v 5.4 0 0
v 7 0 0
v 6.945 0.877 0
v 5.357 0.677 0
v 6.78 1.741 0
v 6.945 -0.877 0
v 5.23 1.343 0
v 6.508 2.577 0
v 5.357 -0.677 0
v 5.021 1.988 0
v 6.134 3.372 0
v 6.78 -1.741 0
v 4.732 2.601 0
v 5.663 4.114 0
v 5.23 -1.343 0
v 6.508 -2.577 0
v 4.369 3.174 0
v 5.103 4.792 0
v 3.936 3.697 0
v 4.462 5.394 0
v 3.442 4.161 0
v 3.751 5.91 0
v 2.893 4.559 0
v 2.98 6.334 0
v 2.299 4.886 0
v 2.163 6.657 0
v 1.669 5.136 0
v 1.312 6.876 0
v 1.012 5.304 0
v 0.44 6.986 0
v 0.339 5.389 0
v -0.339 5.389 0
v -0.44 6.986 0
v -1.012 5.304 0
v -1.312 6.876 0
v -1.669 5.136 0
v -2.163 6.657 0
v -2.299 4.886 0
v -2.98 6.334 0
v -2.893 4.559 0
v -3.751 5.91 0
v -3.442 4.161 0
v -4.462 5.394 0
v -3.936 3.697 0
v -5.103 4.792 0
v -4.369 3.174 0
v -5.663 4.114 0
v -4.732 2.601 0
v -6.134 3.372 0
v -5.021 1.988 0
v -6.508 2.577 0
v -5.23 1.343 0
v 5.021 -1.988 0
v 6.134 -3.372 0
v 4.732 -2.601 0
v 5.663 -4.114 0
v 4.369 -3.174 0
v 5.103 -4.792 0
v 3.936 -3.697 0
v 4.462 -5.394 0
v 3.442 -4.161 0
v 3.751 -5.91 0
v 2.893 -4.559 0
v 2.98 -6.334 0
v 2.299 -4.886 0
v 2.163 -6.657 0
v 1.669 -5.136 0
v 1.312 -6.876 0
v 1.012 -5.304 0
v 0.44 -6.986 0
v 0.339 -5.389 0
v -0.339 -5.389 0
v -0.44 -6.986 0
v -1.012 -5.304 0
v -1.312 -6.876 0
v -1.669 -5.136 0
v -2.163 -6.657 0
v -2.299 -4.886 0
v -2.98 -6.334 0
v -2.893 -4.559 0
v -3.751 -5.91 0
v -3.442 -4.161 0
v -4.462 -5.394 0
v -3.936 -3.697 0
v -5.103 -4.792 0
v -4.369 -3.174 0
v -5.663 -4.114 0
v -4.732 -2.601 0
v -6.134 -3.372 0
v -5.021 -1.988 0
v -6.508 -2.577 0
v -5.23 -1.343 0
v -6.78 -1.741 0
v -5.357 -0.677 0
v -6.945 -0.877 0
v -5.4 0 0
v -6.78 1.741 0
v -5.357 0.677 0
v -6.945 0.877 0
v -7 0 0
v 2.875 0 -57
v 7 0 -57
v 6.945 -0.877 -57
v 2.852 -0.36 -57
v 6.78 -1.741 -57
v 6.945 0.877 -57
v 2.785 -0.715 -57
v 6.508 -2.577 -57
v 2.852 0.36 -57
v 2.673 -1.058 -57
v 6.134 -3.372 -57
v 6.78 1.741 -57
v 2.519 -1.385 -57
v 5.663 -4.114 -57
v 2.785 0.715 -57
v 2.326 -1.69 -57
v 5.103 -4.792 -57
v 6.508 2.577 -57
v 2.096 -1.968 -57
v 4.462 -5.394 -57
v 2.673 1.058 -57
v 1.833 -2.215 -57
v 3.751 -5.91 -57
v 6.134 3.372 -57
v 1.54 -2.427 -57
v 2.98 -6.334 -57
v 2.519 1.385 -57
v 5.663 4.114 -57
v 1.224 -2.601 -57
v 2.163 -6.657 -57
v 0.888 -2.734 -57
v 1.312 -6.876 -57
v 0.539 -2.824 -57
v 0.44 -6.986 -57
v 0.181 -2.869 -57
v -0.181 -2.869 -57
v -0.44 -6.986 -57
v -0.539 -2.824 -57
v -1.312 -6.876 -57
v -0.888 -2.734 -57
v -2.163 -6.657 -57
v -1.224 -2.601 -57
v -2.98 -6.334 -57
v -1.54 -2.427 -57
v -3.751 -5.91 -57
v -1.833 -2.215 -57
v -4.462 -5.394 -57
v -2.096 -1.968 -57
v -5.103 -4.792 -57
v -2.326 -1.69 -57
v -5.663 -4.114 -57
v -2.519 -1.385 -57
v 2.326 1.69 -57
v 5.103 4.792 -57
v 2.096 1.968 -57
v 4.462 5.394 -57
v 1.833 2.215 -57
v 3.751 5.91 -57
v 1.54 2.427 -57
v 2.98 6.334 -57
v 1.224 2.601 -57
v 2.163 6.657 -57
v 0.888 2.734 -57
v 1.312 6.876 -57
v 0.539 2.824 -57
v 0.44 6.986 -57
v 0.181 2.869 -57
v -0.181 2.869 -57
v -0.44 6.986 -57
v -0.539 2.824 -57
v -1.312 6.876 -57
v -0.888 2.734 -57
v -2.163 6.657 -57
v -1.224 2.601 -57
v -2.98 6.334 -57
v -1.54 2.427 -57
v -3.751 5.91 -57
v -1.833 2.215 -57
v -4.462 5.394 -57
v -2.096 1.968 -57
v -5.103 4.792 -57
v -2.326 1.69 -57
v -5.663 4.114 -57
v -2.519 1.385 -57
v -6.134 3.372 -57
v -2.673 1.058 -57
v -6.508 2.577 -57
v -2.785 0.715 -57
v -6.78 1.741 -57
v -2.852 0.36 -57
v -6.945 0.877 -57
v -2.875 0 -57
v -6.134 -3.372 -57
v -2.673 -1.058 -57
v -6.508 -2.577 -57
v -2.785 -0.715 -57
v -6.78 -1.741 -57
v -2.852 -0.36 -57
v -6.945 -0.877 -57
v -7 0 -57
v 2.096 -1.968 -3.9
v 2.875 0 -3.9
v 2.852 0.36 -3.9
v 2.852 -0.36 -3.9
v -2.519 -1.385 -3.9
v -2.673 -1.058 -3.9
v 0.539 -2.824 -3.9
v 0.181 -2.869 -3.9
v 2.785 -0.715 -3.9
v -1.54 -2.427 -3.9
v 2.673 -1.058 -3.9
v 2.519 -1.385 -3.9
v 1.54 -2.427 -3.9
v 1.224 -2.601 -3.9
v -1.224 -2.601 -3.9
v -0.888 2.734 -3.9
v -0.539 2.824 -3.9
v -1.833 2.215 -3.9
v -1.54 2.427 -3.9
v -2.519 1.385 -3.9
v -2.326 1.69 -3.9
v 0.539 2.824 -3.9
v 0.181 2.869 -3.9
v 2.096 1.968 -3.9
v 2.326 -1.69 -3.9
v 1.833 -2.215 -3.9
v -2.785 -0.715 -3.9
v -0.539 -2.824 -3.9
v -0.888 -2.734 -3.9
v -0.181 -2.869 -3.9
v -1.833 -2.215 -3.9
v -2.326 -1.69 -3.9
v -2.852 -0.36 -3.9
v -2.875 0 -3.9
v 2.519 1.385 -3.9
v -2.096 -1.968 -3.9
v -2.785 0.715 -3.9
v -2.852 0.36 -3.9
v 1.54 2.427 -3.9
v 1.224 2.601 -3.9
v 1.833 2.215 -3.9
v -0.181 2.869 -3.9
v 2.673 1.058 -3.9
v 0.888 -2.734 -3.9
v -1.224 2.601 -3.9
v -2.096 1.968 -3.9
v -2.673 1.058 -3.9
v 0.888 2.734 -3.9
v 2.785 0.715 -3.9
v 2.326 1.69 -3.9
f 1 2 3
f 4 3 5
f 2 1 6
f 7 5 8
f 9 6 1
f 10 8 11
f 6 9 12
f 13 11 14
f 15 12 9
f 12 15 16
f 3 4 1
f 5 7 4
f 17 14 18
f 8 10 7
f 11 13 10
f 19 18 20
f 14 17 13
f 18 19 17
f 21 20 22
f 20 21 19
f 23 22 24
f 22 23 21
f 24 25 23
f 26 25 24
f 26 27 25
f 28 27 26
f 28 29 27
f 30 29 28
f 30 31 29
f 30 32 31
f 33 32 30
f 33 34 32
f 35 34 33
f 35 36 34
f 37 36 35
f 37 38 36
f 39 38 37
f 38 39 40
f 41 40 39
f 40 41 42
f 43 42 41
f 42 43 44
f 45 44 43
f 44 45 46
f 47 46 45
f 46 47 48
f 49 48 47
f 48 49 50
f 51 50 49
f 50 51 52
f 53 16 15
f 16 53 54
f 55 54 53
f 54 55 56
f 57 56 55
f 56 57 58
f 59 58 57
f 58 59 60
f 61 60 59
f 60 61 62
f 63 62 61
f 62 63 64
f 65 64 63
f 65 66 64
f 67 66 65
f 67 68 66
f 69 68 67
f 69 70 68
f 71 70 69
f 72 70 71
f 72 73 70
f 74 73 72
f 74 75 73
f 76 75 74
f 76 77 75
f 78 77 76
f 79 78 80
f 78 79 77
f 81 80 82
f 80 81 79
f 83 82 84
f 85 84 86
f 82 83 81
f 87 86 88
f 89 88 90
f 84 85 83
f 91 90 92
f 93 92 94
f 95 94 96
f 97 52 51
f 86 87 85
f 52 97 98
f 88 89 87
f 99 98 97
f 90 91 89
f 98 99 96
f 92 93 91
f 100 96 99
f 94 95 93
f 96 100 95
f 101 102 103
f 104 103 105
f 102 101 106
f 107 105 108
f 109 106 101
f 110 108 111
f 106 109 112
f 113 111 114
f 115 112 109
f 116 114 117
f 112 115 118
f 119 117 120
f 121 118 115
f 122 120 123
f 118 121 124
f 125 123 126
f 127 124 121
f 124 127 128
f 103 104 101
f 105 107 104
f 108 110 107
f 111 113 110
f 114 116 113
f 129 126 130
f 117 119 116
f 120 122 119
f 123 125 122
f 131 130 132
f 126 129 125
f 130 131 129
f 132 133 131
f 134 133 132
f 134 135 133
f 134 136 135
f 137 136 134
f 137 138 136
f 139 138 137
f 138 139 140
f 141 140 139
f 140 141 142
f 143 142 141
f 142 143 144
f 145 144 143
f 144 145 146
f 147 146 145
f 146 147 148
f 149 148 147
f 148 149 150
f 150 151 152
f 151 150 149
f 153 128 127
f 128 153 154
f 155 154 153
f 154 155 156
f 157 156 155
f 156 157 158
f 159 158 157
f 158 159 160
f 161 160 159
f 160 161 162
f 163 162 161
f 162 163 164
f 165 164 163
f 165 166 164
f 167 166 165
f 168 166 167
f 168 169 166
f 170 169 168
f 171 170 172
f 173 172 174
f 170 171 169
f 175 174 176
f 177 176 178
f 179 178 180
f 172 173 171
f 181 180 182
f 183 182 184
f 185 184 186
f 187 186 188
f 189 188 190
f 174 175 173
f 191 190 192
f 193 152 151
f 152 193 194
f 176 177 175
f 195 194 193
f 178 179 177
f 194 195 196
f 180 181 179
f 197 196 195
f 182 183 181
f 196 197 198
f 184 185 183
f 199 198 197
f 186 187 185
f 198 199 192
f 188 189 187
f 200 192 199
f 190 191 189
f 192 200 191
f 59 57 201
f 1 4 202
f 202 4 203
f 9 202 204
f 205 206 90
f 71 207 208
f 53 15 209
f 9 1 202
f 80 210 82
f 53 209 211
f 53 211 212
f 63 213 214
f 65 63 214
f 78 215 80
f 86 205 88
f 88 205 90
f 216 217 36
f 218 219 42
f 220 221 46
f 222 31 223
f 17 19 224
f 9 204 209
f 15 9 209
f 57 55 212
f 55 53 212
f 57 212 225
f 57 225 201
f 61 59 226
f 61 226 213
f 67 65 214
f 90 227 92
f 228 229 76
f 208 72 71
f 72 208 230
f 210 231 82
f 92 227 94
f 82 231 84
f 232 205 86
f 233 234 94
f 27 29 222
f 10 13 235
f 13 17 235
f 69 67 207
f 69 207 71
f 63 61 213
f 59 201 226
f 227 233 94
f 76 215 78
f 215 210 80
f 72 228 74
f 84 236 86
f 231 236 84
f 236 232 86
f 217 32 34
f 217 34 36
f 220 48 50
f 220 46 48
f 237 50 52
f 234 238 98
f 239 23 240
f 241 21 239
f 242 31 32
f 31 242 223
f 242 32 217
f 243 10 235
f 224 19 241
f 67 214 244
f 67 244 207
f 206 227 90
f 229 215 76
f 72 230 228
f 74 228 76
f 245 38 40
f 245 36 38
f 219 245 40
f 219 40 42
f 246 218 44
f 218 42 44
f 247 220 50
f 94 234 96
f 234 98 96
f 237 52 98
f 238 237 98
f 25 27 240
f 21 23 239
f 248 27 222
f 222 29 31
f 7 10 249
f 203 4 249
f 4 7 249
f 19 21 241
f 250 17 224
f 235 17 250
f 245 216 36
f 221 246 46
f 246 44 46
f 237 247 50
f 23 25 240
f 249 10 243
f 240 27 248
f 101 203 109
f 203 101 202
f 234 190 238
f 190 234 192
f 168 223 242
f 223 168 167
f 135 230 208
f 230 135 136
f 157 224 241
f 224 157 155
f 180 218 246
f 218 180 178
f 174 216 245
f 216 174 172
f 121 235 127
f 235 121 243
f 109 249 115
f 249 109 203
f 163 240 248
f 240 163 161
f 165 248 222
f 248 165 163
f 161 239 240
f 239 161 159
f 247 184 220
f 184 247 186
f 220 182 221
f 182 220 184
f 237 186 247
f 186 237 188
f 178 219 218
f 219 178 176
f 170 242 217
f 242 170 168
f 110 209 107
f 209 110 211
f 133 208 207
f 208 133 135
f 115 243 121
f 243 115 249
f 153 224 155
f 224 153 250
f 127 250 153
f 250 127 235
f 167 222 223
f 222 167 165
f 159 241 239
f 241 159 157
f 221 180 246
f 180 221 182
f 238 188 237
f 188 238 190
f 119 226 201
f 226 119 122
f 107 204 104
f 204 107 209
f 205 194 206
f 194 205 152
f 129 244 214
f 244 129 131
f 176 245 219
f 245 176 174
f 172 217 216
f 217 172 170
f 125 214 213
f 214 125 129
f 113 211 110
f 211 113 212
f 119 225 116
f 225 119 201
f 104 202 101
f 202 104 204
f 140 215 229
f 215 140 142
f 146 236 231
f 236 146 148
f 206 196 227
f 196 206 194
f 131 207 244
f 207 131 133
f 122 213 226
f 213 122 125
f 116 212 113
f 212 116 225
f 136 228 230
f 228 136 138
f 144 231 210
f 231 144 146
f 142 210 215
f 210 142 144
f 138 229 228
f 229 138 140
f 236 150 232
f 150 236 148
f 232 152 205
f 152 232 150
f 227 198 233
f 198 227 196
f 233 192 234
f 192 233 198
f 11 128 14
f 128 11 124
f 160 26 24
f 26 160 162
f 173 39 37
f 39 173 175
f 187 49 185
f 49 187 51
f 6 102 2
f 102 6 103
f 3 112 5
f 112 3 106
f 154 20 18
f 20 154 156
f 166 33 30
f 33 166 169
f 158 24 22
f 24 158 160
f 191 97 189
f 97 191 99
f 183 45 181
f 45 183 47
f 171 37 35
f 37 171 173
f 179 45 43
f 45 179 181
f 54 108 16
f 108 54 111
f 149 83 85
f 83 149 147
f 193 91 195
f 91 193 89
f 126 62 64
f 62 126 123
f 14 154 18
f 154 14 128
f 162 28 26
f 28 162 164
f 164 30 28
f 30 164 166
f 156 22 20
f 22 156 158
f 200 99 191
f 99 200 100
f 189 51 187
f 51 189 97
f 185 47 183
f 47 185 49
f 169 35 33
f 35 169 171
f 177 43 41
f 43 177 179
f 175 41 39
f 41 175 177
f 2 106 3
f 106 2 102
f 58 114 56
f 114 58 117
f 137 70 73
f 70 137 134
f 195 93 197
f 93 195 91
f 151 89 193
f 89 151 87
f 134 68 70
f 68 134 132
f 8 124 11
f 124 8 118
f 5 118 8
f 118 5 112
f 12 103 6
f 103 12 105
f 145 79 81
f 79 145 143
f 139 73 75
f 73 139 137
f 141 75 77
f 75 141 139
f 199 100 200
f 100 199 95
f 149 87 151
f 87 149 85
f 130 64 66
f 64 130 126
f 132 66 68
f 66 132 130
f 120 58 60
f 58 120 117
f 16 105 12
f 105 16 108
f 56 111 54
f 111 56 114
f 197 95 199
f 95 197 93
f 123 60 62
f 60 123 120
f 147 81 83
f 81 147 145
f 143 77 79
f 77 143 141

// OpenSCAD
$fn = 50;


difference() {
	union() {
		translate(v = [0, 0, -57.0000000000]) {
			cylinder(h = 57, r = 7.0000000000);
		}
		cylinder(h = 0, r = 16.0000000000);
	}
	union() {
		translate(v = [0, 0, 0]) {
			rotate(a = [0, 0, 0]) {
				difference() {
					union() {
						#translate(v = [0, 0, -57.0000000000]) {
							cylinder(h = 57, r = 2.6000000000);
						}
						#translate(v = [0, 0, -3.9000000000]) {
							cylinder(h = 3.9000000000, r1 = 2.8750000000, r2 = 5.4000000000);
						}
						#translate(v = [0, 0, -57.0000000000]) {
							cylinder(h = 57, r = 2.8750000000);
						}
						#translate(v = [0, 0, -57.0000000000]) {
							cylinder(h = 57, r = 2.6000000000);
						}
					}
					union();
				}
			}
		}
	}
}
